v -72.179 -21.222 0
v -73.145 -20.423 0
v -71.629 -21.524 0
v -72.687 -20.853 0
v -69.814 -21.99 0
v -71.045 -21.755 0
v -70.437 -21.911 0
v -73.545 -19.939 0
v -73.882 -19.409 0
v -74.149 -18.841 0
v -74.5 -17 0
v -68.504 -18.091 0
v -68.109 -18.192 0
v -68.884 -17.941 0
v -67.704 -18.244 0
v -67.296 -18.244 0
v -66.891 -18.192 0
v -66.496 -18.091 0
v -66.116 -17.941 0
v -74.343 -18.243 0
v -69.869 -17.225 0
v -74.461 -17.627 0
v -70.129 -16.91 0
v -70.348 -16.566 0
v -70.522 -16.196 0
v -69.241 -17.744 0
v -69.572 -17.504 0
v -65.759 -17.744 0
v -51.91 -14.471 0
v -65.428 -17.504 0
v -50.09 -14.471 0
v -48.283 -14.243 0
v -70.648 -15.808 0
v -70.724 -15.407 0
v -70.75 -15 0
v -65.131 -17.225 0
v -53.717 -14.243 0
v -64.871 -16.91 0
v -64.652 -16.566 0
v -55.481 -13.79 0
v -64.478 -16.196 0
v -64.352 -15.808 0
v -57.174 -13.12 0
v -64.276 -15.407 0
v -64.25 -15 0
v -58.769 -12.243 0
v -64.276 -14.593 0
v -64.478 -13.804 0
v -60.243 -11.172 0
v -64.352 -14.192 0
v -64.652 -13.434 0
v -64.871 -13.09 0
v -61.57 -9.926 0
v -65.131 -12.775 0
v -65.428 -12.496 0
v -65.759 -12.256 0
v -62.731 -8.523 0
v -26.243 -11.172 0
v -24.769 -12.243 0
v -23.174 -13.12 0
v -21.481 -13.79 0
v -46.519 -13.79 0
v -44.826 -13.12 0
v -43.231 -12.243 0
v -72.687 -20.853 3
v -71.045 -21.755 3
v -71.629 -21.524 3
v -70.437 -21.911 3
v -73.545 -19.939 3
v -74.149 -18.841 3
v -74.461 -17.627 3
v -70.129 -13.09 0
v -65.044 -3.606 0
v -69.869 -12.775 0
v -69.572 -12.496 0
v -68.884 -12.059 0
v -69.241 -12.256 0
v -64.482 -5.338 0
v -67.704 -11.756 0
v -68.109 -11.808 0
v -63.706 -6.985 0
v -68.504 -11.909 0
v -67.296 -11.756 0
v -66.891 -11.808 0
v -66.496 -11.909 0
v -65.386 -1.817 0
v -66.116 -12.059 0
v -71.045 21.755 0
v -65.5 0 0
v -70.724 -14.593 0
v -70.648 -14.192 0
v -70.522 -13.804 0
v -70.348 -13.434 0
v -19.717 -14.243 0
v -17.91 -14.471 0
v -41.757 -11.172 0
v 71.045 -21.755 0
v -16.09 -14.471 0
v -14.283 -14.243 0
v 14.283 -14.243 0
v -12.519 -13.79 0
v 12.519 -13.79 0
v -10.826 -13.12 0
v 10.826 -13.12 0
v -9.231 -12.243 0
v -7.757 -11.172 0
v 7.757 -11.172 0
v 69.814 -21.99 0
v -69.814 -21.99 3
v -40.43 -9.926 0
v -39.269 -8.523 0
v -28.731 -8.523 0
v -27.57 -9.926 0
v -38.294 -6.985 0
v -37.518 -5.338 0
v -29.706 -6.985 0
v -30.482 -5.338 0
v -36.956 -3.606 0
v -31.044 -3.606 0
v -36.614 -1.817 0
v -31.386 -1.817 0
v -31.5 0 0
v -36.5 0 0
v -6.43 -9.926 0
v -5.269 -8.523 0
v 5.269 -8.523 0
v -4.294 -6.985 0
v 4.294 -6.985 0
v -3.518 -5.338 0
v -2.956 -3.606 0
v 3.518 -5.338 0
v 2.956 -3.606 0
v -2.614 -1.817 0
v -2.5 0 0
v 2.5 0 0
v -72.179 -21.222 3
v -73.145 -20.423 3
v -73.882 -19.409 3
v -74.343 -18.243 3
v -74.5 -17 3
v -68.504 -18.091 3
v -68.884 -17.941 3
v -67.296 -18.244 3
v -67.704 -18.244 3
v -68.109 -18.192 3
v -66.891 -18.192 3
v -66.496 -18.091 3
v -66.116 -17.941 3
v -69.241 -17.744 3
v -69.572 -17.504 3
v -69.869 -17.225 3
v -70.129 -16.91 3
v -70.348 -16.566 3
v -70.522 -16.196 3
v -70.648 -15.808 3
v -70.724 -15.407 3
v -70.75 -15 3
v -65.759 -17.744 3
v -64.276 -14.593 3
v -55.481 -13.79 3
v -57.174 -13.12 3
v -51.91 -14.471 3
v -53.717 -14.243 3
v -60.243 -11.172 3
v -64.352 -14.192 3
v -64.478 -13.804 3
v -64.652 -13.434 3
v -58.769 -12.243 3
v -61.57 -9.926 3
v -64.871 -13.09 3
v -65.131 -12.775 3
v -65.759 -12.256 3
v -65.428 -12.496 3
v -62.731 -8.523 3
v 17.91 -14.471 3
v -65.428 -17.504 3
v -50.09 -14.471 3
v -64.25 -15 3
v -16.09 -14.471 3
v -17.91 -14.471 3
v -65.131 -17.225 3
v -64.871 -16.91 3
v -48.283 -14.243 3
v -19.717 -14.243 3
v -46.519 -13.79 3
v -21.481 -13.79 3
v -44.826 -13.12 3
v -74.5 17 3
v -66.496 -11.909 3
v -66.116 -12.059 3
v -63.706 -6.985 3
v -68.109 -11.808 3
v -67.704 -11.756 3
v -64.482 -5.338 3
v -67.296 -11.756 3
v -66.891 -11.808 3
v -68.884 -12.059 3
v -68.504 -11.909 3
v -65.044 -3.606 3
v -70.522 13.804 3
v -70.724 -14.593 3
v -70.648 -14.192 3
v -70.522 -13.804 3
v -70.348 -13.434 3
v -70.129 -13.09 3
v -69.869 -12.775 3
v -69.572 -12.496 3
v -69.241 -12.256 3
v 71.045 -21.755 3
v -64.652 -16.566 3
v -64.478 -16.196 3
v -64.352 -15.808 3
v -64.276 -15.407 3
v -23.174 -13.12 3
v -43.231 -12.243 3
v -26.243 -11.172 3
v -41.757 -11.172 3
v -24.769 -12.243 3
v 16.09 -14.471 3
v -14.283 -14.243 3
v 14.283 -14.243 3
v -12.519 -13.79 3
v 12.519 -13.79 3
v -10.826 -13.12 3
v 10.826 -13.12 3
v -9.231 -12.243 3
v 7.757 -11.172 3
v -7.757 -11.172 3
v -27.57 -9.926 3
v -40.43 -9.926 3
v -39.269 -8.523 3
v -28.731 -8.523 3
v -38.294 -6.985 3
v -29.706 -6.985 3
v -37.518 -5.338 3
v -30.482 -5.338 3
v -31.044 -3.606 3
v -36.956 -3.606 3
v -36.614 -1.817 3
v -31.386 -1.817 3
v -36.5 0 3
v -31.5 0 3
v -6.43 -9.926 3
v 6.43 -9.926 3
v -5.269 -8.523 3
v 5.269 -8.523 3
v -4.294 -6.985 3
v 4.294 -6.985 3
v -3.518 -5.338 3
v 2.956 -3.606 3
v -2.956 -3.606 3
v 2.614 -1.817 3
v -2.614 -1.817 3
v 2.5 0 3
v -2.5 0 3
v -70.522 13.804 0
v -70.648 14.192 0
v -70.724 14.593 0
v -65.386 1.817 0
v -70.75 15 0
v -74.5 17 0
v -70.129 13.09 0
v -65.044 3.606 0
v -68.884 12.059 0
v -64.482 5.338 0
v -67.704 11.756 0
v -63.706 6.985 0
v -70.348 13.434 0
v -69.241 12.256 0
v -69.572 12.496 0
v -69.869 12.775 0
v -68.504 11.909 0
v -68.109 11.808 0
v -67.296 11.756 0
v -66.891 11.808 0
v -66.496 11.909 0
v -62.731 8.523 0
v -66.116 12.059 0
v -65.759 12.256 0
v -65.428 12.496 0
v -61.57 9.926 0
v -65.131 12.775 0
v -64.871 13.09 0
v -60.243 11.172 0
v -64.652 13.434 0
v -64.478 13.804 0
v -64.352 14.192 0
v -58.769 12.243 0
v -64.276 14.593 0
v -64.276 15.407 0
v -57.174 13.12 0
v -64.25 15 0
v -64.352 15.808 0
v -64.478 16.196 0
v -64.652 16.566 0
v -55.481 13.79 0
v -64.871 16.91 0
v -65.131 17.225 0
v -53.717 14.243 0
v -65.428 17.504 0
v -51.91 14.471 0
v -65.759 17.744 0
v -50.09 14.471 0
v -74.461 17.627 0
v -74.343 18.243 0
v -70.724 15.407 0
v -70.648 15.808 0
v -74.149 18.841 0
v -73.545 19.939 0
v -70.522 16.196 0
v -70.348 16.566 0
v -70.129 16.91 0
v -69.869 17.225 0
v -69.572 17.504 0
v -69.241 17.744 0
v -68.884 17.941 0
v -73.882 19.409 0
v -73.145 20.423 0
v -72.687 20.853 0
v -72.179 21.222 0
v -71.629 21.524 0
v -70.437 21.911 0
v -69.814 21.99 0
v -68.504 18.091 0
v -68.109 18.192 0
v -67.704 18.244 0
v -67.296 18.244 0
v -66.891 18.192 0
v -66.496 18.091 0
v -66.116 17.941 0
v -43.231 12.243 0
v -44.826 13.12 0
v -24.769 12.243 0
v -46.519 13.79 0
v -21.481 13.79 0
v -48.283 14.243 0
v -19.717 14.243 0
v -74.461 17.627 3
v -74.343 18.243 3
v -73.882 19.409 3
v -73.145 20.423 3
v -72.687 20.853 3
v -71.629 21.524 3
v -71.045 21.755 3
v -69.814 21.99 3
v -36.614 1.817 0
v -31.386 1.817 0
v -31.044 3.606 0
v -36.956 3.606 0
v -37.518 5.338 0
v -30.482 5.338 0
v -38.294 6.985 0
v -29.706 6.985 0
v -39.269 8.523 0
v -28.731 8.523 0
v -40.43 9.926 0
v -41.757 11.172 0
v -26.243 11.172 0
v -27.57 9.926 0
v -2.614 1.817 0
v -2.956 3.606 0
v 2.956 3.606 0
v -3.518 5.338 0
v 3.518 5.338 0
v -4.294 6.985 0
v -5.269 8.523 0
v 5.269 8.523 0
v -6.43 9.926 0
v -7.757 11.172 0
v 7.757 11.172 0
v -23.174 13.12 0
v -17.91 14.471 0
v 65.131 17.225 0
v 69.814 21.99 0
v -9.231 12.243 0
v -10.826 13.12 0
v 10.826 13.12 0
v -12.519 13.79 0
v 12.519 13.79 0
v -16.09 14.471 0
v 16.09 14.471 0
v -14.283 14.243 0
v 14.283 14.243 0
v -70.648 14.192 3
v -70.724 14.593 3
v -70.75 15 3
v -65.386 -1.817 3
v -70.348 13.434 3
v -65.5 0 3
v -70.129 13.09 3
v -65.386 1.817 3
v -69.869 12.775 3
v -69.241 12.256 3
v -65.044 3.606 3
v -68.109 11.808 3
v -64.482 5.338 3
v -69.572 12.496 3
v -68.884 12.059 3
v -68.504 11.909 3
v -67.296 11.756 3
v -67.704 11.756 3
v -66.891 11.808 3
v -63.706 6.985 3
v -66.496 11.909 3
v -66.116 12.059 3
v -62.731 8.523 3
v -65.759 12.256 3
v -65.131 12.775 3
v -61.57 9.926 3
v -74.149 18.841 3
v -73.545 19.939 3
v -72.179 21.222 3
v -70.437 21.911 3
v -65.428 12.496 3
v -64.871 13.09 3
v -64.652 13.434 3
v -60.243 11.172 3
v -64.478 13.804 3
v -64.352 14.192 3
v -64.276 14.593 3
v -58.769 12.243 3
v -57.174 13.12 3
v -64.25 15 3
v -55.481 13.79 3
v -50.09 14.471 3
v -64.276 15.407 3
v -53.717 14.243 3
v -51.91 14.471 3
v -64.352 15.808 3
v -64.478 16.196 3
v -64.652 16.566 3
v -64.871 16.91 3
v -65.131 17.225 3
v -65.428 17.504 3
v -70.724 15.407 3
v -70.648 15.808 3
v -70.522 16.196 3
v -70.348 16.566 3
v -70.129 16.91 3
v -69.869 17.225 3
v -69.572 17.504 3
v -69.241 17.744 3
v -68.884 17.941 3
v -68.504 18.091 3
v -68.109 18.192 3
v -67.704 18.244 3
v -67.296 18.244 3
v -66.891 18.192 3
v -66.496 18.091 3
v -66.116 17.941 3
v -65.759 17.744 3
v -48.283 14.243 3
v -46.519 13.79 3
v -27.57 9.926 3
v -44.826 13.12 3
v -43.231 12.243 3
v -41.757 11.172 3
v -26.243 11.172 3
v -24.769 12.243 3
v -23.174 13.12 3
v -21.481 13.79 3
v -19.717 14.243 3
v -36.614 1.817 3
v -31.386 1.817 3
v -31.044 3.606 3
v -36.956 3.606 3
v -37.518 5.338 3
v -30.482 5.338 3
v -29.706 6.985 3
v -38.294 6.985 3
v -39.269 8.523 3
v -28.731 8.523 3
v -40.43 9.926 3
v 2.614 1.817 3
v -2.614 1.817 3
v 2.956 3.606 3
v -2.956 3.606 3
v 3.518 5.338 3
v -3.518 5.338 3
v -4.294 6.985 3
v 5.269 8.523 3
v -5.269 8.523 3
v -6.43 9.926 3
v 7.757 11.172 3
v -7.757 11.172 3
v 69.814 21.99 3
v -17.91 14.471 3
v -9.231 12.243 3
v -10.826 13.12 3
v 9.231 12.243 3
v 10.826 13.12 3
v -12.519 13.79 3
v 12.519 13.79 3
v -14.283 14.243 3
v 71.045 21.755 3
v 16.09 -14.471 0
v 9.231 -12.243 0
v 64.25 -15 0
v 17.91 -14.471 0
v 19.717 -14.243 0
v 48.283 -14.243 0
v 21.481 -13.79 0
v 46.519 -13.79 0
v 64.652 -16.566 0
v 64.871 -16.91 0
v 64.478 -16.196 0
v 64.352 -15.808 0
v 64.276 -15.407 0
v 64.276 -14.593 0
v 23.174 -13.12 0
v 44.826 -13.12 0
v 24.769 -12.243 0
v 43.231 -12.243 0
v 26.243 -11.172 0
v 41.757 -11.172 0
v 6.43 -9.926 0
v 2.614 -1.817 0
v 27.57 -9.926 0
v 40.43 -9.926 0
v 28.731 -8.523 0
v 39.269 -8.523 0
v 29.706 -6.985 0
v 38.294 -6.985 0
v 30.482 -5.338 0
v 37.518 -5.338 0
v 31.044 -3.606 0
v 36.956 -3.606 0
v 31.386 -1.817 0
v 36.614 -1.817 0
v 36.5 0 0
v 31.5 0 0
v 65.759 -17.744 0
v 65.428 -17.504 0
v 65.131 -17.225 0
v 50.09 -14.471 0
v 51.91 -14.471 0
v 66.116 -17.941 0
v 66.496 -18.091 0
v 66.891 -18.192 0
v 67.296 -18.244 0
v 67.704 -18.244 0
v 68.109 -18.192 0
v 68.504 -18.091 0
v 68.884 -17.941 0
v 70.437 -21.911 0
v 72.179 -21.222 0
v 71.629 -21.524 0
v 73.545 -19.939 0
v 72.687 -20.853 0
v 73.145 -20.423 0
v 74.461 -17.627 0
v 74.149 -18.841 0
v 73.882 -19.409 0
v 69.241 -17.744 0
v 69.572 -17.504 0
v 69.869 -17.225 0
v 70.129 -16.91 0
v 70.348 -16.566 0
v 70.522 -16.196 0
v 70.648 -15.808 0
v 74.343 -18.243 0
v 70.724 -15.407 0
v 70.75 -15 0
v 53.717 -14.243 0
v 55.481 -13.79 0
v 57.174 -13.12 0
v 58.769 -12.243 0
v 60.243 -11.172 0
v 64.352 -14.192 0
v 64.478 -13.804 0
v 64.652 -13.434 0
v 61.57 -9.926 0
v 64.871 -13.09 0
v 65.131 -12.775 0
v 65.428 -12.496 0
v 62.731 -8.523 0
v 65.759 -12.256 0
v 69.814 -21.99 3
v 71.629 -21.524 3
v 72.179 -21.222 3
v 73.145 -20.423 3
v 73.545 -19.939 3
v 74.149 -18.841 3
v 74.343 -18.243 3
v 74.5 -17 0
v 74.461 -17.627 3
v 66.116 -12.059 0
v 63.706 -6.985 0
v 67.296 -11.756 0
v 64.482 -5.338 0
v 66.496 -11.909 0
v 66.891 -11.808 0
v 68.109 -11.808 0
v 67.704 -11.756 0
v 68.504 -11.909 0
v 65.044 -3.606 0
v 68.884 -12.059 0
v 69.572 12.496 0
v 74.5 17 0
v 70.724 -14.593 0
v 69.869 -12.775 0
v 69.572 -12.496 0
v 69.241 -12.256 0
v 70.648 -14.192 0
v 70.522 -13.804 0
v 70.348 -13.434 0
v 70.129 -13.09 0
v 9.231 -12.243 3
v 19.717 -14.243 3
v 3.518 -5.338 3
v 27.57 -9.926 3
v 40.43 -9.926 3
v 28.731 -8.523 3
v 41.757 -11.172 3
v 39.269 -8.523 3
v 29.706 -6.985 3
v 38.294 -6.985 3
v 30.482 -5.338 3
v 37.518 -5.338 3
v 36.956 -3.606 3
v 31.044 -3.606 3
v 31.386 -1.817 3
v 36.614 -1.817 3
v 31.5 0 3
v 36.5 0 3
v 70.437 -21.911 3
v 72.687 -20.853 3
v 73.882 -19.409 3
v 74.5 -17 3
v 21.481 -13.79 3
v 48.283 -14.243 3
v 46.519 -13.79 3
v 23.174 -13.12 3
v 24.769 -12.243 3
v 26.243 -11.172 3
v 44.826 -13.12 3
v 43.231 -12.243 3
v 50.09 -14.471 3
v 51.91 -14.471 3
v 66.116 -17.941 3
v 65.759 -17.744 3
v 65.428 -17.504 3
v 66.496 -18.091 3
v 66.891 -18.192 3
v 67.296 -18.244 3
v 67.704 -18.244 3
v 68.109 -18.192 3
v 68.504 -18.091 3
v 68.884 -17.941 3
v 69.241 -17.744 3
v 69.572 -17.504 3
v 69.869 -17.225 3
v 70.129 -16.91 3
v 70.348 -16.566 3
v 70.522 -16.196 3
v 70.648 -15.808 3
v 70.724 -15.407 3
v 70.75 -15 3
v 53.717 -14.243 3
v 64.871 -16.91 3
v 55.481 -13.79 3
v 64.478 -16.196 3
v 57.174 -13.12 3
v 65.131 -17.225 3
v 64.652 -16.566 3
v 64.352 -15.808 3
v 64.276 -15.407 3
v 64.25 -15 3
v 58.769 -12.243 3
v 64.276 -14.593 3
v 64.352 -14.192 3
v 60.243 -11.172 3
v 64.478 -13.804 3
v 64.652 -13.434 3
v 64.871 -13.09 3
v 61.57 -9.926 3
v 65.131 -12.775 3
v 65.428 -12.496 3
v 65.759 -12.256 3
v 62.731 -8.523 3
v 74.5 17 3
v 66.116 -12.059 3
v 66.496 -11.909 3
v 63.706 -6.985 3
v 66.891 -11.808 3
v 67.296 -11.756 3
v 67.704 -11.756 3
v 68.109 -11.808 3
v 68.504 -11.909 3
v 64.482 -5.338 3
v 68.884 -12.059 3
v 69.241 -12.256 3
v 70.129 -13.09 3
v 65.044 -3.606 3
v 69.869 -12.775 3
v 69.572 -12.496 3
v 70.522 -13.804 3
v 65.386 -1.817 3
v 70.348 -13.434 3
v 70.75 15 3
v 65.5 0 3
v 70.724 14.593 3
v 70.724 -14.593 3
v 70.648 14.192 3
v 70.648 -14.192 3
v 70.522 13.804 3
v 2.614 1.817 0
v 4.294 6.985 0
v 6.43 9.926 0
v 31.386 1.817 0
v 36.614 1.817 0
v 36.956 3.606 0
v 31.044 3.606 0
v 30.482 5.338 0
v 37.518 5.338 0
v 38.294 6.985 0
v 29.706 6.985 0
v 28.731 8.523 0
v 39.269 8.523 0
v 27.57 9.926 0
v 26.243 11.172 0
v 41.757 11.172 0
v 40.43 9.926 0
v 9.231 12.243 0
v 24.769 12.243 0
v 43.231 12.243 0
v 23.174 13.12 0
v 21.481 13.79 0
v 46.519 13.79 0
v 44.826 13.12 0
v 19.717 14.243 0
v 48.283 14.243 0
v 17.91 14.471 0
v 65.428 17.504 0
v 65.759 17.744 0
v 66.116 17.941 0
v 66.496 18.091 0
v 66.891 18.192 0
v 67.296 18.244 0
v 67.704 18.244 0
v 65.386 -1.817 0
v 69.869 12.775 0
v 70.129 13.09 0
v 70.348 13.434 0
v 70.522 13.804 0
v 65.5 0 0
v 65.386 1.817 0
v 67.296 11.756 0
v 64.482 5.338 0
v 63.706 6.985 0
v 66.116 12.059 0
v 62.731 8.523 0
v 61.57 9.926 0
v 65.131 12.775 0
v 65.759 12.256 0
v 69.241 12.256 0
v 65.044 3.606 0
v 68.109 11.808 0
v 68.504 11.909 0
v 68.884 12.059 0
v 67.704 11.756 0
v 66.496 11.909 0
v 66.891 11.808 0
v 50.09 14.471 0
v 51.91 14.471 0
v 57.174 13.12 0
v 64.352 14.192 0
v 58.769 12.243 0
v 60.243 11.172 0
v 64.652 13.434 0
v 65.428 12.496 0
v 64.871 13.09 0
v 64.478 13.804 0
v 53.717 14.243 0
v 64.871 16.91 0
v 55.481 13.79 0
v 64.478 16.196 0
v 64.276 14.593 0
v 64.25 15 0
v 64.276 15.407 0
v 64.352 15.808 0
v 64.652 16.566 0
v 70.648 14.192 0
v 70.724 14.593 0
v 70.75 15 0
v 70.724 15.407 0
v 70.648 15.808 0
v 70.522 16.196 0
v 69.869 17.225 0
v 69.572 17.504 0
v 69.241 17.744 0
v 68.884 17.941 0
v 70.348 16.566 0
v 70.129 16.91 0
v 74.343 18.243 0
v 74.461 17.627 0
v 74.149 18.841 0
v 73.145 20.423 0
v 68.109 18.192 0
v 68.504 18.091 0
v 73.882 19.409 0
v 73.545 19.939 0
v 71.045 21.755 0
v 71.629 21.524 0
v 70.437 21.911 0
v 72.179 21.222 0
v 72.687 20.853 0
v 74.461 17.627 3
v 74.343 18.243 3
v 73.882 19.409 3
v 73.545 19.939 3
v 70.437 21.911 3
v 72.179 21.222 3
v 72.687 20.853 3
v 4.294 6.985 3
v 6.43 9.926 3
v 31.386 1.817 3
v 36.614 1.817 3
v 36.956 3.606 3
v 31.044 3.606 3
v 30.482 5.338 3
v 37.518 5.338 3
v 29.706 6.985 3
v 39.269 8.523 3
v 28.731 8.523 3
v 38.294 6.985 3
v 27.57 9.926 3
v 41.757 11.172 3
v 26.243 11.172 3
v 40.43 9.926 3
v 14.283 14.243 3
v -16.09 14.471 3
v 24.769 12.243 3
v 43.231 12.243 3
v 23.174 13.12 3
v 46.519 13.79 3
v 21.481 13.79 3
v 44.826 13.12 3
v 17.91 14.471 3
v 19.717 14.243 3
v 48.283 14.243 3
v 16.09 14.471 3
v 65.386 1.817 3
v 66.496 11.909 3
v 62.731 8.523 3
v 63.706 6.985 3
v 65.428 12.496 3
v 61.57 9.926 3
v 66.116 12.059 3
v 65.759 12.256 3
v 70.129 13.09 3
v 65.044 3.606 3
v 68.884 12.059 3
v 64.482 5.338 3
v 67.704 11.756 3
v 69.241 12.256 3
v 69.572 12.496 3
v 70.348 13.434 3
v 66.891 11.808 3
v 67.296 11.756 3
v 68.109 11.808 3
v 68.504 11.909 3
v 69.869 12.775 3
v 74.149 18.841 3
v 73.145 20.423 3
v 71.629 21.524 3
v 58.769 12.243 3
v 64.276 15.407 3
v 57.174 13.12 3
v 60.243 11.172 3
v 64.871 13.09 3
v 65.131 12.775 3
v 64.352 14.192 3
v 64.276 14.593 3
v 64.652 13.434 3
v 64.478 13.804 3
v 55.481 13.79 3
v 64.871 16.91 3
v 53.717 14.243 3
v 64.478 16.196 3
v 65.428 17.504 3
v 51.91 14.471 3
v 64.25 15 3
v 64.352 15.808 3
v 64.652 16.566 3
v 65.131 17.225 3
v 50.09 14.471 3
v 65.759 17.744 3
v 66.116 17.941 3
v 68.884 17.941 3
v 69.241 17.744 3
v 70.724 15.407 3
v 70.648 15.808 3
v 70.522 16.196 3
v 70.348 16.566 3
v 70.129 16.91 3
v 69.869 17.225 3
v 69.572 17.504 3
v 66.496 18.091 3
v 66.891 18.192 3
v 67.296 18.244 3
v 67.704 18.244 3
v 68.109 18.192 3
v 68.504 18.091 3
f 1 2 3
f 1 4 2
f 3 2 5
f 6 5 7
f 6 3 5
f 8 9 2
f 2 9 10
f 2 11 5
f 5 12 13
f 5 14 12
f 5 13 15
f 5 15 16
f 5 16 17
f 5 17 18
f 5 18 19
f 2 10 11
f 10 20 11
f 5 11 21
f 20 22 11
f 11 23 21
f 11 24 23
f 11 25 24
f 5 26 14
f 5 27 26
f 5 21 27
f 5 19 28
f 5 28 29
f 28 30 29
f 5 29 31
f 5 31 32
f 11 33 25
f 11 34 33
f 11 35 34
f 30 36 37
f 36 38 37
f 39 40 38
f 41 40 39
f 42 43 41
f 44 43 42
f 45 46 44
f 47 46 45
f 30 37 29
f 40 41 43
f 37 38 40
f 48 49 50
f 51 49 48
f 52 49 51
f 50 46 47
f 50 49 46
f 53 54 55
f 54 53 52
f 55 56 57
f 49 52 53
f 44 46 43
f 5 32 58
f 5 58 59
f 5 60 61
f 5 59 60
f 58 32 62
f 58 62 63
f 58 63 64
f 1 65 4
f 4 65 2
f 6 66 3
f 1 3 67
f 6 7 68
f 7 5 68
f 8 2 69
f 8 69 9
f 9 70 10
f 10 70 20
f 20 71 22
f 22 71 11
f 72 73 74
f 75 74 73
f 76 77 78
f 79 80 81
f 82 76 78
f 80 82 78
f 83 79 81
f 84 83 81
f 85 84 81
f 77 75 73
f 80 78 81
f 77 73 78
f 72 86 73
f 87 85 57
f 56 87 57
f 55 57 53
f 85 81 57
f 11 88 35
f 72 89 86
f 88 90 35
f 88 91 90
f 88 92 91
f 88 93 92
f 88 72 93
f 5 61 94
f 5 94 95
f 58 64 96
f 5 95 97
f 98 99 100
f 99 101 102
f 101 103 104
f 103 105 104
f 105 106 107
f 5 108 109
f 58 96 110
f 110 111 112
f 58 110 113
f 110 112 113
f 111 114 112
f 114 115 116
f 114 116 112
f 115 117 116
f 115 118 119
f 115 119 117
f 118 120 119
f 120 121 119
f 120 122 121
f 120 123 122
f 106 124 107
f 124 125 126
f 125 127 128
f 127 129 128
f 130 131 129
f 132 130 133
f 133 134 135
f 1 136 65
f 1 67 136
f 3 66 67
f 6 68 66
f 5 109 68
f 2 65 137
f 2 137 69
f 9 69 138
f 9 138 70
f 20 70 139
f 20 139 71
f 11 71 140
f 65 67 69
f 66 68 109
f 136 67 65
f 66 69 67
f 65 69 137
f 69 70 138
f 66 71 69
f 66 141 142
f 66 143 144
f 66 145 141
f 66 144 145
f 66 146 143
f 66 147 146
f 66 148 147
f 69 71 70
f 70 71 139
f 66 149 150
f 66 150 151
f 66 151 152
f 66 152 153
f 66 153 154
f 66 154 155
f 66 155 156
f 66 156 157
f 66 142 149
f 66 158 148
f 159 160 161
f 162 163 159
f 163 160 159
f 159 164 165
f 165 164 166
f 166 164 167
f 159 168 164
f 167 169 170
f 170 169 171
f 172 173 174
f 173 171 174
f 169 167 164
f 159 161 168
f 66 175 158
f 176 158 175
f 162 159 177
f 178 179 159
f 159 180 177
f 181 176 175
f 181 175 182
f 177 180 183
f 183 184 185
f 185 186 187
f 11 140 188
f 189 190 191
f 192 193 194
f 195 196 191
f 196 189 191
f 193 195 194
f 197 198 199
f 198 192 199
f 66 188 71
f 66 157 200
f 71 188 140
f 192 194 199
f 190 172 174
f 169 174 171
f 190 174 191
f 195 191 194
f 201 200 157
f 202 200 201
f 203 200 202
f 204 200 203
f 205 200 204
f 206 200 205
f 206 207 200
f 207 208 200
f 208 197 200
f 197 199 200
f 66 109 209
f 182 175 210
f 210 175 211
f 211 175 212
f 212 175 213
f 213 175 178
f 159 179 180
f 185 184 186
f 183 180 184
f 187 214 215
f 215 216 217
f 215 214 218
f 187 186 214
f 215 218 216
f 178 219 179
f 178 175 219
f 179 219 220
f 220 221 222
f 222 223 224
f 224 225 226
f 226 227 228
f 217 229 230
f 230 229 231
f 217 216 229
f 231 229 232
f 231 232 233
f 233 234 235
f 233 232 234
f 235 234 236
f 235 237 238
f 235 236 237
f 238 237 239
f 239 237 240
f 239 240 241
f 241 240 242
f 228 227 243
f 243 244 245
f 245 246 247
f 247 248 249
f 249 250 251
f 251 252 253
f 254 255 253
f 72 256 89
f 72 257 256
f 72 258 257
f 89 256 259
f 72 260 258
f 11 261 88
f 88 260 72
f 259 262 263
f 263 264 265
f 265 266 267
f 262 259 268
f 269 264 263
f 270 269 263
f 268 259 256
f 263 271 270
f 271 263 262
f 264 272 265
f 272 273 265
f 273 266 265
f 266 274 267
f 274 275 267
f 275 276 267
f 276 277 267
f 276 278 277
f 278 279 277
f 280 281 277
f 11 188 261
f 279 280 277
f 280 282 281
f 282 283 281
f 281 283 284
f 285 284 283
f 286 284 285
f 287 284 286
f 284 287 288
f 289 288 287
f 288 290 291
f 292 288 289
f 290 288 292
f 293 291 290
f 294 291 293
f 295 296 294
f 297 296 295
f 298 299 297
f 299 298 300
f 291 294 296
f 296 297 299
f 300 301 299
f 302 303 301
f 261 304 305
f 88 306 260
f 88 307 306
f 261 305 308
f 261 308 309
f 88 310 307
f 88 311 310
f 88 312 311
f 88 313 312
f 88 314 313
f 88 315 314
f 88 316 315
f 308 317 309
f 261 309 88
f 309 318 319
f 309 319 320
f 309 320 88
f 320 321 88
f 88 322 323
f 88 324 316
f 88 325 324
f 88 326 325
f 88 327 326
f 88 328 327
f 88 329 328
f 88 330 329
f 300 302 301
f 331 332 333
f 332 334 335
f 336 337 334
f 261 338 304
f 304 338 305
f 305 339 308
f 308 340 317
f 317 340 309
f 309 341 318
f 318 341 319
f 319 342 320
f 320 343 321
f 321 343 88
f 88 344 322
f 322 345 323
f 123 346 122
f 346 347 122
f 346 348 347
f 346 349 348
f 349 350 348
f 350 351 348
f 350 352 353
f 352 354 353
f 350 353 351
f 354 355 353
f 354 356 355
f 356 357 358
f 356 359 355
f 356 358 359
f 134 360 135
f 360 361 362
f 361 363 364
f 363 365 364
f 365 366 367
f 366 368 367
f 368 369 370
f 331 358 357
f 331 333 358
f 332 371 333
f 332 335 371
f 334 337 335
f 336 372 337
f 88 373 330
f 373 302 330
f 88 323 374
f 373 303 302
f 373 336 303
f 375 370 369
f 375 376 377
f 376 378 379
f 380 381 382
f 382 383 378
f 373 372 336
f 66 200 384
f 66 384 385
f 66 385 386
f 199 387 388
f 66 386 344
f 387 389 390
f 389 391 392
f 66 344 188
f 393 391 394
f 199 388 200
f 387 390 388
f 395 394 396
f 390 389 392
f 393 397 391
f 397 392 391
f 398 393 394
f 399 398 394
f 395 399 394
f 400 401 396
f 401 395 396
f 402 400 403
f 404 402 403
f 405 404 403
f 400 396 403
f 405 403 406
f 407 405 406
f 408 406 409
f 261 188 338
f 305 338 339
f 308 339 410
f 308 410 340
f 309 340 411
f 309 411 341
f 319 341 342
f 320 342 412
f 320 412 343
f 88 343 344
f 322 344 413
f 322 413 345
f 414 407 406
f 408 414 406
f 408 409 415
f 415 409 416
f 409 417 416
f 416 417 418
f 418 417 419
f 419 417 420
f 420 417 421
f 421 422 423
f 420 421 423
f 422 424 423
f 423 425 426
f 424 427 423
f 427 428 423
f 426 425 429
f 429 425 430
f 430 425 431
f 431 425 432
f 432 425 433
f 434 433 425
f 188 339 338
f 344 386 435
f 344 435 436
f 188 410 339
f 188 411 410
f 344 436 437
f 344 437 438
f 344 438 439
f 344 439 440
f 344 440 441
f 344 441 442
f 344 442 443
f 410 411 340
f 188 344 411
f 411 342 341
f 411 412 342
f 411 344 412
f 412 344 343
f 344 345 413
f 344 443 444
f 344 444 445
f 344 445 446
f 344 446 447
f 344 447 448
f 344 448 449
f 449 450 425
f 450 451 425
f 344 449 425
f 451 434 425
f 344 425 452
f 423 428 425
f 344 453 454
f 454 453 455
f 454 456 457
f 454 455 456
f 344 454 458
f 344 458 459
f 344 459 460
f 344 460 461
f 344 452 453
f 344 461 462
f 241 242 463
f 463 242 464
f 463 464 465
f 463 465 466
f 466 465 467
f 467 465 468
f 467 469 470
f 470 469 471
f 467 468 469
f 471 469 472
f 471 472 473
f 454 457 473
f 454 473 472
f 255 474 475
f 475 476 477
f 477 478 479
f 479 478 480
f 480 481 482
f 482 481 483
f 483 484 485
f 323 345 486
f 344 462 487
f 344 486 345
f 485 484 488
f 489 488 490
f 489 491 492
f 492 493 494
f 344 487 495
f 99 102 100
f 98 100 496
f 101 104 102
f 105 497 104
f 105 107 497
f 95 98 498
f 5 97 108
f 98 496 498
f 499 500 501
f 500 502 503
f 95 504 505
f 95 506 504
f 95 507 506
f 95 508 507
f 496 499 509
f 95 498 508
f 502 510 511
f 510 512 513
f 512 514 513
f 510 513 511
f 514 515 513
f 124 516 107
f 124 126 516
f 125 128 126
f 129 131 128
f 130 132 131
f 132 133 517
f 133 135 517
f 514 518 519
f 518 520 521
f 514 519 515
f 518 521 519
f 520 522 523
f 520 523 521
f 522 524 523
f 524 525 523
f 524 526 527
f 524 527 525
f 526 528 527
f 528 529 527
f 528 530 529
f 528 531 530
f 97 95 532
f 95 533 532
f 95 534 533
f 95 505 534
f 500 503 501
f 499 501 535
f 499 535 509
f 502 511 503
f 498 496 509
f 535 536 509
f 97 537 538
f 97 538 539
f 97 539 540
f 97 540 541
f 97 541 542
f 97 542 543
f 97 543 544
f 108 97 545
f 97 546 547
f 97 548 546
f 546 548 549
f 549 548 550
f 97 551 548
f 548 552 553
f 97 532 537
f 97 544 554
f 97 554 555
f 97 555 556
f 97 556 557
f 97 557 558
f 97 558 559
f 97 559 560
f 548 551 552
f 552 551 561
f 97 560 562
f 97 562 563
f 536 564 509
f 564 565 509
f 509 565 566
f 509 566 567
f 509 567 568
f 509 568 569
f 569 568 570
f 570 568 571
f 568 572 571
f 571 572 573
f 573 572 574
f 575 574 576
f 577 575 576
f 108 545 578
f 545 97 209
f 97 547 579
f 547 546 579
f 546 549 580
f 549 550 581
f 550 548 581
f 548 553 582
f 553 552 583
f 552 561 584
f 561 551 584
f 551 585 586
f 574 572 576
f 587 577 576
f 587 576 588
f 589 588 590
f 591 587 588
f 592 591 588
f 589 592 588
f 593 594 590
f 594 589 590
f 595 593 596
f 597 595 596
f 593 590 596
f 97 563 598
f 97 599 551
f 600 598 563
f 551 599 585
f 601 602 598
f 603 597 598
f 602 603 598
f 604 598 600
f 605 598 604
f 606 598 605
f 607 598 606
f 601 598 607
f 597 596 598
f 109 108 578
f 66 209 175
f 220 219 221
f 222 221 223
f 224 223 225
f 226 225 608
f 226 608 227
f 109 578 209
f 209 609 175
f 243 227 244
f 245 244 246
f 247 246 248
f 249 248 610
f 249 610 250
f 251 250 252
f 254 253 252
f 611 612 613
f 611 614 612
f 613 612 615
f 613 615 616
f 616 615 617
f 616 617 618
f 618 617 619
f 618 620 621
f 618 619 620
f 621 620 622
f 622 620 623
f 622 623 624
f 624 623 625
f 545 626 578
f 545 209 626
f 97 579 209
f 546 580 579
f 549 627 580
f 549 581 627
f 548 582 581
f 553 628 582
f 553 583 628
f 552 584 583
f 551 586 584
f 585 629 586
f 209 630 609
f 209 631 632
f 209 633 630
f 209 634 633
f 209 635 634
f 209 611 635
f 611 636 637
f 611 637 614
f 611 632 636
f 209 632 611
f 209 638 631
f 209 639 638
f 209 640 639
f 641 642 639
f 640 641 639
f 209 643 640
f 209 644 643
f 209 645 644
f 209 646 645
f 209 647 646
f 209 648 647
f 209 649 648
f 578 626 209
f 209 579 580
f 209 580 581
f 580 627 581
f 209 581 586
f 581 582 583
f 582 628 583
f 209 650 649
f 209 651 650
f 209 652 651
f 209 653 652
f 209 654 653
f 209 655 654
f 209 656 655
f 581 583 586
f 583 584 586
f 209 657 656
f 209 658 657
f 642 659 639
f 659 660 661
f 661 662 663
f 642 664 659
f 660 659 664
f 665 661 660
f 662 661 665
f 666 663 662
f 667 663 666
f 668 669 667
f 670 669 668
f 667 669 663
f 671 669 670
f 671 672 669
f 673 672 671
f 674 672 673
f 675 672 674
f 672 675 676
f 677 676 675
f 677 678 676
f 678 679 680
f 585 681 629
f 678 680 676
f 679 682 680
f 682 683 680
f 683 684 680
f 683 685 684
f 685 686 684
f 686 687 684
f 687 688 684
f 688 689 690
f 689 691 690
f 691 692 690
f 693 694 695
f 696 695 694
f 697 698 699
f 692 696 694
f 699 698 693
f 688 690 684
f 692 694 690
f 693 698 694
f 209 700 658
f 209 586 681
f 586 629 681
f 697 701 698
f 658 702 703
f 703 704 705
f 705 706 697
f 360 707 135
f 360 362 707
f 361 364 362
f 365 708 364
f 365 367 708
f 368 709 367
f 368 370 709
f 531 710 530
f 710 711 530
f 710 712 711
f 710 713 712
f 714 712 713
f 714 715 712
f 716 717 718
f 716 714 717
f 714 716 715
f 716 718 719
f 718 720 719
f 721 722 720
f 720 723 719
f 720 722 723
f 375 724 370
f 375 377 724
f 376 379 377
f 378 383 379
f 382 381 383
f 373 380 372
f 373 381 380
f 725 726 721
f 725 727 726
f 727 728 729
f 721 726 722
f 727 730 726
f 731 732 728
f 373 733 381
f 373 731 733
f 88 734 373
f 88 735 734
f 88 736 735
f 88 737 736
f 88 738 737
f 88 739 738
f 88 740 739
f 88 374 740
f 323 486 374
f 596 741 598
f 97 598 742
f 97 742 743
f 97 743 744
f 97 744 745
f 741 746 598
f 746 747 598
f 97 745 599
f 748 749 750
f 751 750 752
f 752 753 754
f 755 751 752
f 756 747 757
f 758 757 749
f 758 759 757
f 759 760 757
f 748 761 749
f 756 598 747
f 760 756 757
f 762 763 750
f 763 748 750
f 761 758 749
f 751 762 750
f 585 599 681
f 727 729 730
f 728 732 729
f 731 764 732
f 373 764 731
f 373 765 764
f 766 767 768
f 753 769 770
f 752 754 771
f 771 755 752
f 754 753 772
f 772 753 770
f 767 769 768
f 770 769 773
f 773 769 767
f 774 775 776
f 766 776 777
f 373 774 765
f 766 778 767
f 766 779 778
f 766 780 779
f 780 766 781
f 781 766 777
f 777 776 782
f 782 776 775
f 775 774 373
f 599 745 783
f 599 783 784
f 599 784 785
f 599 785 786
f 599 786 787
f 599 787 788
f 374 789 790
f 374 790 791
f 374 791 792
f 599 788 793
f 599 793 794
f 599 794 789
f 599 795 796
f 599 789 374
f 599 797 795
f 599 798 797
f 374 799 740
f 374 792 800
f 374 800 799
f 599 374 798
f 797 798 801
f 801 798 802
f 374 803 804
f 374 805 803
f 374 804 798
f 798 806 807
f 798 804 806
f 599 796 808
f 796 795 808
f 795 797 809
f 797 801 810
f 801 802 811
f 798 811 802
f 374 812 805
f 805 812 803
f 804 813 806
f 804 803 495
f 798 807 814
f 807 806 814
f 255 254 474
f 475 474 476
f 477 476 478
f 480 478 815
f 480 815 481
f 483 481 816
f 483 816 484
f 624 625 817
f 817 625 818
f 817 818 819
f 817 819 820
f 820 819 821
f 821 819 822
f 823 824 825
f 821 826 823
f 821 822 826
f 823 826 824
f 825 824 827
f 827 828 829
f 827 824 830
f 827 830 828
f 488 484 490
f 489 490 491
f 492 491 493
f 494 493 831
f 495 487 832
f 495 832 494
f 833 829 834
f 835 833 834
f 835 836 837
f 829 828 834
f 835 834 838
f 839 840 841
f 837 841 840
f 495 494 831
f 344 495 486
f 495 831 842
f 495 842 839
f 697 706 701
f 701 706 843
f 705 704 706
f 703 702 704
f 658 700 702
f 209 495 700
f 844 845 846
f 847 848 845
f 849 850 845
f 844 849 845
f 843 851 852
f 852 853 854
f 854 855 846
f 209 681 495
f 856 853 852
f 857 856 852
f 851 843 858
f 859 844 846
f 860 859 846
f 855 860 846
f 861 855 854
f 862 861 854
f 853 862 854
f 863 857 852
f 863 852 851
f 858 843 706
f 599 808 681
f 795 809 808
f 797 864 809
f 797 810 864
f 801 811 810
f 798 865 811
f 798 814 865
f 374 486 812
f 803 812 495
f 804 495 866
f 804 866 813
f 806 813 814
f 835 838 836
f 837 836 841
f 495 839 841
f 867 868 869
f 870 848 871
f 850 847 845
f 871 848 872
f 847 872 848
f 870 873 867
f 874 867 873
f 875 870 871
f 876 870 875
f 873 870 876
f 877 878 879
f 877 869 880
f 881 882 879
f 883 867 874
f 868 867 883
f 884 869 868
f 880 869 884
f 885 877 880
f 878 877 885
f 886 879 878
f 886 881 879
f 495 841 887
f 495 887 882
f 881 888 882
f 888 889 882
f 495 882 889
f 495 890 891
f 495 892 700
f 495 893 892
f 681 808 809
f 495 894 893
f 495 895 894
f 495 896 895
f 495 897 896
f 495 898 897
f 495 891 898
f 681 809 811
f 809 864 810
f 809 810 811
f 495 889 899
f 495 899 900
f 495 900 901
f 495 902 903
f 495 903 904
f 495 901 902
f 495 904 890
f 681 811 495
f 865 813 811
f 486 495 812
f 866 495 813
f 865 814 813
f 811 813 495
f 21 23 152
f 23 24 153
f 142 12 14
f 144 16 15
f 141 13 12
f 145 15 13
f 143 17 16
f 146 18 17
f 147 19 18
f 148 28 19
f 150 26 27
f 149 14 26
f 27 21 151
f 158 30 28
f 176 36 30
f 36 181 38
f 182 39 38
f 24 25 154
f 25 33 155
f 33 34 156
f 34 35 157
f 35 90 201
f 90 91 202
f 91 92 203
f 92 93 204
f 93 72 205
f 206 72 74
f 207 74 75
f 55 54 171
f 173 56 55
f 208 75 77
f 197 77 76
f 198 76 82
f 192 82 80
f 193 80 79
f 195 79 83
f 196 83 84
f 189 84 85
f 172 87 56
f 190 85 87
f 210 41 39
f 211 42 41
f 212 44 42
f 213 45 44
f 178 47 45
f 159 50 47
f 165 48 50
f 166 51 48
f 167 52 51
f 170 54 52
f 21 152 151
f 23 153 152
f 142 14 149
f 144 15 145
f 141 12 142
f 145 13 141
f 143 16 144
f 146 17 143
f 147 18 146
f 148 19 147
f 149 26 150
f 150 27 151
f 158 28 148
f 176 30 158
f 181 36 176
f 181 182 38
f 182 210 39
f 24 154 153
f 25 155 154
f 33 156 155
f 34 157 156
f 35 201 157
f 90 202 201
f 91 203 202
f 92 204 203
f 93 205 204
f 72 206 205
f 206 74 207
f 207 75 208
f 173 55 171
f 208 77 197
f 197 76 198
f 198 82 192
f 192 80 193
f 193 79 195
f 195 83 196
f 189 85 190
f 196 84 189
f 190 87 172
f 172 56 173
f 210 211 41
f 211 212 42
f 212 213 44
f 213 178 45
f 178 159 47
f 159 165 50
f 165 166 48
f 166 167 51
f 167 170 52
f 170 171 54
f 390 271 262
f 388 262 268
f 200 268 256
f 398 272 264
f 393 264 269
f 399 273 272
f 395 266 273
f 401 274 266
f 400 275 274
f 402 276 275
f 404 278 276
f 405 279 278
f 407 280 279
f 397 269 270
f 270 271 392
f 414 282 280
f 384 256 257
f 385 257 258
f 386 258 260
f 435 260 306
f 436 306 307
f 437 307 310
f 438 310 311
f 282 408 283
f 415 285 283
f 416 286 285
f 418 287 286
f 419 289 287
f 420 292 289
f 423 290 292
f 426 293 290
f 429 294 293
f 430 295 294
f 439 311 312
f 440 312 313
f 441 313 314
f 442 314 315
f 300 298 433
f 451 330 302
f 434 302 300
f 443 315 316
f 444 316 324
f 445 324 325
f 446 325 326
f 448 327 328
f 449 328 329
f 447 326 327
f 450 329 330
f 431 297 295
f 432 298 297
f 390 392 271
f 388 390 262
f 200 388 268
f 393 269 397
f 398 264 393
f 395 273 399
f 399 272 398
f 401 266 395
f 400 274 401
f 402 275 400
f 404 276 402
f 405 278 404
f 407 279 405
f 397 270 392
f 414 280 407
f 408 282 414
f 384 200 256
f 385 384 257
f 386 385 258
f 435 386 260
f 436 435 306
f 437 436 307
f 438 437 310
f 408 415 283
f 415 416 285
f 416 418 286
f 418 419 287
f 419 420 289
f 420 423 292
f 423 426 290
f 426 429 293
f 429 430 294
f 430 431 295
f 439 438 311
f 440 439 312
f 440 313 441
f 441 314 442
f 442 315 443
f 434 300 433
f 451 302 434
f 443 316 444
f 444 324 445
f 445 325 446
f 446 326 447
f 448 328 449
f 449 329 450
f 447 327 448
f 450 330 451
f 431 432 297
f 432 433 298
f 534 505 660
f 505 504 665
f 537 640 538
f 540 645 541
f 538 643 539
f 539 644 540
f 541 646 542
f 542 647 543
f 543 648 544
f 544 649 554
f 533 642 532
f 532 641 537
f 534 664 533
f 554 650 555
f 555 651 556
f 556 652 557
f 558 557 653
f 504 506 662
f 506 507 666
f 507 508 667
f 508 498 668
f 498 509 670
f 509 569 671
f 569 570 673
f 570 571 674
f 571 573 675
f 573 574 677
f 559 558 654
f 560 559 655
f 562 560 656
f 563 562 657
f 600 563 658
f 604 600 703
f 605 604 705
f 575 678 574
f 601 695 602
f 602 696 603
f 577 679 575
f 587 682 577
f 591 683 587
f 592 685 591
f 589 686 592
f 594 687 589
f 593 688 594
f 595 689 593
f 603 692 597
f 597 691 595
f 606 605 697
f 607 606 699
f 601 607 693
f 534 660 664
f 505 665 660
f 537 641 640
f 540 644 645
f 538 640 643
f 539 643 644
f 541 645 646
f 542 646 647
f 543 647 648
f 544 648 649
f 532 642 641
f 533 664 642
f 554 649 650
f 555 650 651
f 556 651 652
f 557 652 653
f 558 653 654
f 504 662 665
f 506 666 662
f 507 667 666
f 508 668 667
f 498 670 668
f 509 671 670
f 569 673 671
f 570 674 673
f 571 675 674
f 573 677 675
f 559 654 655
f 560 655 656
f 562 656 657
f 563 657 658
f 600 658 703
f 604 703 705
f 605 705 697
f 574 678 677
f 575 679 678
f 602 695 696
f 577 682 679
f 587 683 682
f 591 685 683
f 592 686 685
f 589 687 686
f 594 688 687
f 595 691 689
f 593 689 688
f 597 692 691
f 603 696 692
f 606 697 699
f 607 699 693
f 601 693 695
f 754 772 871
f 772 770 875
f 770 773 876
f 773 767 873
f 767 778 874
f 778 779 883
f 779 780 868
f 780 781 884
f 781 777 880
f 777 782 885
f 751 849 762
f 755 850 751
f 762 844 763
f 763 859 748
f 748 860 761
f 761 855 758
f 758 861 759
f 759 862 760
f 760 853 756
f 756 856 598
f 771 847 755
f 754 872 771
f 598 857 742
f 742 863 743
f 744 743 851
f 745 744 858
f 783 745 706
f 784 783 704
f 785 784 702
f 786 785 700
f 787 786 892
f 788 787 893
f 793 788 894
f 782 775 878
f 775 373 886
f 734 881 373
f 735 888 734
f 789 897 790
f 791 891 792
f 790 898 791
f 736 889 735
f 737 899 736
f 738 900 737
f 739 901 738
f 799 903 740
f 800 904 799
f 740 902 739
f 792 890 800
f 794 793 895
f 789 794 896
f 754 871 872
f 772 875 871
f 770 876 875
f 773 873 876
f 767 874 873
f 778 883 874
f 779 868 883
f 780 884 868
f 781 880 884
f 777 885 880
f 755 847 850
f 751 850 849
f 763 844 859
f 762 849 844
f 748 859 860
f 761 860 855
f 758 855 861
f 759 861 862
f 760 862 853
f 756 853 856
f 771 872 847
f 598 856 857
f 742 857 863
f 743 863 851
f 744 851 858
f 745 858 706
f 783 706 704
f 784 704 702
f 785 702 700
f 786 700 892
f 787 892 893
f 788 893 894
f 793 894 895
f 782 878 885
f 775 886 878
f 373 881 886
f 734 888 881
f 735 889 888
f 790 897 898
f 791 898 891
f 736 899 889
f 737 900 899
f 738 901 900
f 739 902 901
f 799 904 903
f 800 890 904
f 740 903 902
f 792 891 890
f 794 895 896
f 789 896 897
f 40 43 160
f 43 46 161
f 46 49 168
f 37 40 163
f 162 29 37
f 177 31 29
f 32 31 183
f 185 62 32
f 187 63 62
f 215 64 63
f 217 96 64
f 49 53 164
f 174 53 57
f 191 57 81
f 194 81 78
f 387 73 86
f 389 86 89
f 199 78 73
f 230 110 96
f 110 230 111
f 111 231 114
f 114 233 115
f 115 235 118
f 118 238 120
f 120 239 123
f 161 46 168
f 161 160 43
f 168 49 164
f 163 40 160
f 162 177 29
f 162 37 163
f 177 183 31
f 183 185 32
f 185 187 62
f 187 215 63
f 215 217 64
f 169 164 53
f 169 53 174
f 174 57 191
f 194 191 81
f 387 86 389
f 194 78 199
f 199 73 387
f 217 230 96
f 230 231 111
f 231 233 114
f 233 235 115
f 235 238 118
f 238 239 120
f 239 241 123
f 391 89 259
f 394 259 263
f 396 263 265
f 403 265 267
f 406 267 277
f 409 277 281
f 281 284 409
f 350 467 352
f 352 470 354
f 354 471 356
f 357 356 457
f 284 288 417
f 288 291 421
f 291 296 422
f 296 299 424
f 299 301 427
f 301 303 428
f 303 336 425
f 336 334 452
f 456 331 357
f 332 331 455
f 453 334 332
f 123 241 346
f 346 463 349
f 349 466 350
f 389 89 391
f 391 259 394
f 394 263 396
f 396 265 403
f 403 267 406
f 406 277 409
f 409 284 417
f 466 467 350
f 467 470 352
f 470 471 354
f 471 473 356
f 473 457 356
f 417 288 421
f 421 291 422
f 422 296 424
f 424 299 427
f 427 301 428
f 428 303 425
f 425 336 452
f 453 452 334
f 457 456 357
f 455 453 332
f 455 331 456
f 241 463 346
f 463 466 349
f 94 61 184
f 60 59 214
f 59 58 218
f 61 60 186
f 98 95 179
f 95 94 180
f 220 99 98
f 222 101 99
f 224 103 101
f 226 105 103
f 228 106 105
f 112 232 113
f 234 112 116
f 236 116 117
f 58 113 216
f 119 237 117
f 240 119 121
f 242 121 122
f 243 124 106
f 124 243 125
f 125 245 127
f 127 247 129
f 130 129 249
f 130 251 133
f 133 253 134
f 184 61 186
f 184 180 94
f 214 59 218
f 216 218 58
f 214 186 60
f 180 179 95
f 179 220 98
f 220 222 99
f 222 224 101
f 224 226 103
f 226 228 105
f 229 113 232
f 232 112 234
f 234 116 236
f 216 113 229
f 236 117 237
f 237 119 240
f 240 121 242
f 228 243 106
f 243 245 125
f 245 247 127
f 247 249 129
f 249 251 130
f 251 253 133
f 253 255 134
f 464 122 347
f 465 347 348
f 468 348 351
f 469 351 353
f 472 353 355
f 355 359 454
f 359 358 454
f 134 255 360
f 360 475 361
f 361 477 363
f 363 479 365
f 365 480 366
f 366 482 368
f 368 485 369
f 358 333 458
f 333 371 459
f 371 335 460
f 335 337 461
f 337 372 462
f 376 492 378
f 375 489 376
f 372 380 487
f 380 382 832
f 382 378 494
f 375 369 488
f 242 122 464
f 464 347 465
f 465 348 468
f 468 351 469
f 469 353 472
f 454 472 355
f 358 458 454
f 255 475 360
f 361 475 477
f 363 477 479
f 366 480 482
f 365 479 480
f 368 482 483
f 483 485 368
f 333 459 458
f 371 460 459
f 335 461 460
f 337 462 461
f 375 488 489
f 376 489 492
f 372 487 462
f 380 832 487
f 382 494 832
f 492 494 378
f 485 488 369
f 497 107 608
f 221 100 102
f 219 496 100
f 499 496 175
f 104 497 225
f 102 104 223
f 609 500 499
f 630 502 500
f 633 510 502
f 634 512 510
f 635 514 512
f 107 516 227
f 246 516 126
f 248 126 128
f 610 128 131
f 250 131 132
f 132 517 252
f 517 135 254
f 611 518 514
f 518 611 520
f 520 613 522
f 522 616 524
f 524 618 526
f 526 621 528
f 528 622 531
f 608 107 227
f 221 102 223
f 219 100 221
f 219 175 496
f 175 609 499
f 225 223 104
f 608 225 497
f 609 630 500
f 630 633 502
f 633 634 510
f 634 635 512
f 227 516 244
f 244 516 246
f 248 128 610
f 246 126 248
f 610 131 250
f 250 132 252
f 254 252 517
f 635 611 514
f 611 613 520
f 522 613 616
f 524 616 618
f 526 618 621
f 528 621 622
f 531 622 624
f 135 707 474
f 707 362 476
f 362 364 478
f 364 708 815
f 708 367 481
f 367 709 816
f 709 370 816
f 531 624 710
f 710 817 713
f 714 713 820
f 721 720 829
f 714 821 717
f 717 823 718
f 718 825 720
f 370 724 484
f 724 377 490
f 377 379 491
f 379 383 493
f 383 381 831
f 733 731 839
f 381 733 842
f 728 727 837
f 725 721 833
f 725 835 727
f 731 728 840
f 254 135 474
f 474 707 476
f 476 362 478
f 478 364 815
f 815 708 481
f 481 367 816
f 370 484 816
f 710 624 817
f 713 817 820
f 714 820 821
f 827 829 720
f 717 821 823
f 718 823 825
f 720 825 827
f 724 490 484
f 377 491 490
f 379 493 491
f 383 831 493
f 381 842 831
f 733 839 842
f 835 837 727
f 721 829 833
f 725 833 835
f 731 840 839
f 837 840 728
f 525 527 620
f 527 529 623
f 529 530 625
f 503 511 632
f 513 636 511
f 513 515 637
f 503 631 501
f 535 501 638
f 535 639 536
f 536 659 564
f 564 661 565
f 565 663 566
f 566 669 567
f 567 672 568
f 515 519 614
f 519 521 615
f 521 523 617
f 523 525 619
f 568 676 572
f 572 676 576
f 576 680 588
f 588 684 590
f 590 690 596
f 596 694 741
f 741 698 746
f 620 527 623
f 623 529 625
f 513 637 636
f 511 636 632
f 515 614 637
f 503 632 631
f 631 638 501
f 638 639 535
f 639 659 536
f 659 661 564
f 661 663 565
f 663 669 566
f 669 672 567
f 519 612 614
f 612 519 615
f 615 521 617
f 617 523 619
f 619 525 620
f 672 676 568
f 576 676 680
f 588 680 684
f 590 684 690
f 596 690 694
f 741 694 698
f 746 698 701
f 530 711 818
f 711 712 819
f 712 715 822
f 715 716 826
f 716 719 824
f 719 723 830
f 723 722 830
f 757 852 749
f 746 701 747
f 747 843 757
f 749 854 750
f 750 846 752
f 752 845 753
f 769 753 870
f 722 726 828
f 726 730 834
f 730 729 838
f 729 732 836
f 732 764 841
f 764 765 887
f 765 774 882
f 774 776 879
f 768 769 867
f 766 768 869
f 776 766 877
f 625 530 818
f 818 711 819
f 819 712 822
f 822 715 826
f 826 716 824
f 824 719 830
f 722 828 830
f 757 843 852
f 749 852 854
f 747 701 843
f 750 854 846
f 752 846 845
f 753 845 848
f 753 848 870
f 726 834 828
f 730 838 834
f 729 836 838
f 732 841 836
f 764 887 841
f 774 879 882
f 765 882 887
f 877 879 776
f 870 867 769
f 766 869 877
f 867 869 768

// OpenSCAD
$fn = 50;

difference() {
	union() {
		hull() {
			translate(v = [-69.5, 17.0, 0]) {
				cylinder(h = 3, r = 5);
			}
			translate(v = [69.5, 17.0, 0]) {
				cylinder(h = 3, r = 5);
			}
			translate(v = [-69.5, -17.0, 0]) {
				cylinder(h = 3, r = 5);
			}
			translate(v = [69.5, -17.0, 0]) {
				cylinder(h = 3, r = 5);
			}
		}
	}
	union() {
		translate(v = [-67.5, -15.0, -100.0]) {
			cylinder(h = 200, r = 3.25);
		}
		translate(v = [-67.5, 15.0, -100.0]) {
			cylinder(h = 200, r = 3.25);
		}
		translate(v = [67.5, -15.0, -100.0]) {
			cylinder(h = 200, r = 3.25);
		}
		translate(v = [67.5, 15.0, -100.0]) {
			cylinder(h = 200, r = 3.25);
		}
		translate(v = [-67.5, -15.0, -100.0]) {
			cylinder(h = 200, r = 1.8);
		}
		translate(v = [-67.5, 15.0, -100.0]) {
			cylinder(h = 200, r = 1.8);
		}
		translate(v = [67.5, -15.0, -100.0]) {
			cylinder(h = 200, r = 1.8);
		}
		translate(v = [67.5, 15.0, -100.0]) {
			cylinder(h = 200, r = 1.8);
		}
		translate(v = [-51.0, 0, 0.0]) {
			cylinder(h = 3, r = 14.5);
		}
		translate(v = [-17.0, 0, 0.0]) {
			cylinder(h = 3, r = 14.5);
		}
		translate(v = [17.0, 0, 0.0]) {
			cylinder(h = 3, r = 14.5);
		}
		translate(v = [51.0, 0, 0.0]) {
			cylinder(h = 3, r = 14.5);
		}
	}
}
